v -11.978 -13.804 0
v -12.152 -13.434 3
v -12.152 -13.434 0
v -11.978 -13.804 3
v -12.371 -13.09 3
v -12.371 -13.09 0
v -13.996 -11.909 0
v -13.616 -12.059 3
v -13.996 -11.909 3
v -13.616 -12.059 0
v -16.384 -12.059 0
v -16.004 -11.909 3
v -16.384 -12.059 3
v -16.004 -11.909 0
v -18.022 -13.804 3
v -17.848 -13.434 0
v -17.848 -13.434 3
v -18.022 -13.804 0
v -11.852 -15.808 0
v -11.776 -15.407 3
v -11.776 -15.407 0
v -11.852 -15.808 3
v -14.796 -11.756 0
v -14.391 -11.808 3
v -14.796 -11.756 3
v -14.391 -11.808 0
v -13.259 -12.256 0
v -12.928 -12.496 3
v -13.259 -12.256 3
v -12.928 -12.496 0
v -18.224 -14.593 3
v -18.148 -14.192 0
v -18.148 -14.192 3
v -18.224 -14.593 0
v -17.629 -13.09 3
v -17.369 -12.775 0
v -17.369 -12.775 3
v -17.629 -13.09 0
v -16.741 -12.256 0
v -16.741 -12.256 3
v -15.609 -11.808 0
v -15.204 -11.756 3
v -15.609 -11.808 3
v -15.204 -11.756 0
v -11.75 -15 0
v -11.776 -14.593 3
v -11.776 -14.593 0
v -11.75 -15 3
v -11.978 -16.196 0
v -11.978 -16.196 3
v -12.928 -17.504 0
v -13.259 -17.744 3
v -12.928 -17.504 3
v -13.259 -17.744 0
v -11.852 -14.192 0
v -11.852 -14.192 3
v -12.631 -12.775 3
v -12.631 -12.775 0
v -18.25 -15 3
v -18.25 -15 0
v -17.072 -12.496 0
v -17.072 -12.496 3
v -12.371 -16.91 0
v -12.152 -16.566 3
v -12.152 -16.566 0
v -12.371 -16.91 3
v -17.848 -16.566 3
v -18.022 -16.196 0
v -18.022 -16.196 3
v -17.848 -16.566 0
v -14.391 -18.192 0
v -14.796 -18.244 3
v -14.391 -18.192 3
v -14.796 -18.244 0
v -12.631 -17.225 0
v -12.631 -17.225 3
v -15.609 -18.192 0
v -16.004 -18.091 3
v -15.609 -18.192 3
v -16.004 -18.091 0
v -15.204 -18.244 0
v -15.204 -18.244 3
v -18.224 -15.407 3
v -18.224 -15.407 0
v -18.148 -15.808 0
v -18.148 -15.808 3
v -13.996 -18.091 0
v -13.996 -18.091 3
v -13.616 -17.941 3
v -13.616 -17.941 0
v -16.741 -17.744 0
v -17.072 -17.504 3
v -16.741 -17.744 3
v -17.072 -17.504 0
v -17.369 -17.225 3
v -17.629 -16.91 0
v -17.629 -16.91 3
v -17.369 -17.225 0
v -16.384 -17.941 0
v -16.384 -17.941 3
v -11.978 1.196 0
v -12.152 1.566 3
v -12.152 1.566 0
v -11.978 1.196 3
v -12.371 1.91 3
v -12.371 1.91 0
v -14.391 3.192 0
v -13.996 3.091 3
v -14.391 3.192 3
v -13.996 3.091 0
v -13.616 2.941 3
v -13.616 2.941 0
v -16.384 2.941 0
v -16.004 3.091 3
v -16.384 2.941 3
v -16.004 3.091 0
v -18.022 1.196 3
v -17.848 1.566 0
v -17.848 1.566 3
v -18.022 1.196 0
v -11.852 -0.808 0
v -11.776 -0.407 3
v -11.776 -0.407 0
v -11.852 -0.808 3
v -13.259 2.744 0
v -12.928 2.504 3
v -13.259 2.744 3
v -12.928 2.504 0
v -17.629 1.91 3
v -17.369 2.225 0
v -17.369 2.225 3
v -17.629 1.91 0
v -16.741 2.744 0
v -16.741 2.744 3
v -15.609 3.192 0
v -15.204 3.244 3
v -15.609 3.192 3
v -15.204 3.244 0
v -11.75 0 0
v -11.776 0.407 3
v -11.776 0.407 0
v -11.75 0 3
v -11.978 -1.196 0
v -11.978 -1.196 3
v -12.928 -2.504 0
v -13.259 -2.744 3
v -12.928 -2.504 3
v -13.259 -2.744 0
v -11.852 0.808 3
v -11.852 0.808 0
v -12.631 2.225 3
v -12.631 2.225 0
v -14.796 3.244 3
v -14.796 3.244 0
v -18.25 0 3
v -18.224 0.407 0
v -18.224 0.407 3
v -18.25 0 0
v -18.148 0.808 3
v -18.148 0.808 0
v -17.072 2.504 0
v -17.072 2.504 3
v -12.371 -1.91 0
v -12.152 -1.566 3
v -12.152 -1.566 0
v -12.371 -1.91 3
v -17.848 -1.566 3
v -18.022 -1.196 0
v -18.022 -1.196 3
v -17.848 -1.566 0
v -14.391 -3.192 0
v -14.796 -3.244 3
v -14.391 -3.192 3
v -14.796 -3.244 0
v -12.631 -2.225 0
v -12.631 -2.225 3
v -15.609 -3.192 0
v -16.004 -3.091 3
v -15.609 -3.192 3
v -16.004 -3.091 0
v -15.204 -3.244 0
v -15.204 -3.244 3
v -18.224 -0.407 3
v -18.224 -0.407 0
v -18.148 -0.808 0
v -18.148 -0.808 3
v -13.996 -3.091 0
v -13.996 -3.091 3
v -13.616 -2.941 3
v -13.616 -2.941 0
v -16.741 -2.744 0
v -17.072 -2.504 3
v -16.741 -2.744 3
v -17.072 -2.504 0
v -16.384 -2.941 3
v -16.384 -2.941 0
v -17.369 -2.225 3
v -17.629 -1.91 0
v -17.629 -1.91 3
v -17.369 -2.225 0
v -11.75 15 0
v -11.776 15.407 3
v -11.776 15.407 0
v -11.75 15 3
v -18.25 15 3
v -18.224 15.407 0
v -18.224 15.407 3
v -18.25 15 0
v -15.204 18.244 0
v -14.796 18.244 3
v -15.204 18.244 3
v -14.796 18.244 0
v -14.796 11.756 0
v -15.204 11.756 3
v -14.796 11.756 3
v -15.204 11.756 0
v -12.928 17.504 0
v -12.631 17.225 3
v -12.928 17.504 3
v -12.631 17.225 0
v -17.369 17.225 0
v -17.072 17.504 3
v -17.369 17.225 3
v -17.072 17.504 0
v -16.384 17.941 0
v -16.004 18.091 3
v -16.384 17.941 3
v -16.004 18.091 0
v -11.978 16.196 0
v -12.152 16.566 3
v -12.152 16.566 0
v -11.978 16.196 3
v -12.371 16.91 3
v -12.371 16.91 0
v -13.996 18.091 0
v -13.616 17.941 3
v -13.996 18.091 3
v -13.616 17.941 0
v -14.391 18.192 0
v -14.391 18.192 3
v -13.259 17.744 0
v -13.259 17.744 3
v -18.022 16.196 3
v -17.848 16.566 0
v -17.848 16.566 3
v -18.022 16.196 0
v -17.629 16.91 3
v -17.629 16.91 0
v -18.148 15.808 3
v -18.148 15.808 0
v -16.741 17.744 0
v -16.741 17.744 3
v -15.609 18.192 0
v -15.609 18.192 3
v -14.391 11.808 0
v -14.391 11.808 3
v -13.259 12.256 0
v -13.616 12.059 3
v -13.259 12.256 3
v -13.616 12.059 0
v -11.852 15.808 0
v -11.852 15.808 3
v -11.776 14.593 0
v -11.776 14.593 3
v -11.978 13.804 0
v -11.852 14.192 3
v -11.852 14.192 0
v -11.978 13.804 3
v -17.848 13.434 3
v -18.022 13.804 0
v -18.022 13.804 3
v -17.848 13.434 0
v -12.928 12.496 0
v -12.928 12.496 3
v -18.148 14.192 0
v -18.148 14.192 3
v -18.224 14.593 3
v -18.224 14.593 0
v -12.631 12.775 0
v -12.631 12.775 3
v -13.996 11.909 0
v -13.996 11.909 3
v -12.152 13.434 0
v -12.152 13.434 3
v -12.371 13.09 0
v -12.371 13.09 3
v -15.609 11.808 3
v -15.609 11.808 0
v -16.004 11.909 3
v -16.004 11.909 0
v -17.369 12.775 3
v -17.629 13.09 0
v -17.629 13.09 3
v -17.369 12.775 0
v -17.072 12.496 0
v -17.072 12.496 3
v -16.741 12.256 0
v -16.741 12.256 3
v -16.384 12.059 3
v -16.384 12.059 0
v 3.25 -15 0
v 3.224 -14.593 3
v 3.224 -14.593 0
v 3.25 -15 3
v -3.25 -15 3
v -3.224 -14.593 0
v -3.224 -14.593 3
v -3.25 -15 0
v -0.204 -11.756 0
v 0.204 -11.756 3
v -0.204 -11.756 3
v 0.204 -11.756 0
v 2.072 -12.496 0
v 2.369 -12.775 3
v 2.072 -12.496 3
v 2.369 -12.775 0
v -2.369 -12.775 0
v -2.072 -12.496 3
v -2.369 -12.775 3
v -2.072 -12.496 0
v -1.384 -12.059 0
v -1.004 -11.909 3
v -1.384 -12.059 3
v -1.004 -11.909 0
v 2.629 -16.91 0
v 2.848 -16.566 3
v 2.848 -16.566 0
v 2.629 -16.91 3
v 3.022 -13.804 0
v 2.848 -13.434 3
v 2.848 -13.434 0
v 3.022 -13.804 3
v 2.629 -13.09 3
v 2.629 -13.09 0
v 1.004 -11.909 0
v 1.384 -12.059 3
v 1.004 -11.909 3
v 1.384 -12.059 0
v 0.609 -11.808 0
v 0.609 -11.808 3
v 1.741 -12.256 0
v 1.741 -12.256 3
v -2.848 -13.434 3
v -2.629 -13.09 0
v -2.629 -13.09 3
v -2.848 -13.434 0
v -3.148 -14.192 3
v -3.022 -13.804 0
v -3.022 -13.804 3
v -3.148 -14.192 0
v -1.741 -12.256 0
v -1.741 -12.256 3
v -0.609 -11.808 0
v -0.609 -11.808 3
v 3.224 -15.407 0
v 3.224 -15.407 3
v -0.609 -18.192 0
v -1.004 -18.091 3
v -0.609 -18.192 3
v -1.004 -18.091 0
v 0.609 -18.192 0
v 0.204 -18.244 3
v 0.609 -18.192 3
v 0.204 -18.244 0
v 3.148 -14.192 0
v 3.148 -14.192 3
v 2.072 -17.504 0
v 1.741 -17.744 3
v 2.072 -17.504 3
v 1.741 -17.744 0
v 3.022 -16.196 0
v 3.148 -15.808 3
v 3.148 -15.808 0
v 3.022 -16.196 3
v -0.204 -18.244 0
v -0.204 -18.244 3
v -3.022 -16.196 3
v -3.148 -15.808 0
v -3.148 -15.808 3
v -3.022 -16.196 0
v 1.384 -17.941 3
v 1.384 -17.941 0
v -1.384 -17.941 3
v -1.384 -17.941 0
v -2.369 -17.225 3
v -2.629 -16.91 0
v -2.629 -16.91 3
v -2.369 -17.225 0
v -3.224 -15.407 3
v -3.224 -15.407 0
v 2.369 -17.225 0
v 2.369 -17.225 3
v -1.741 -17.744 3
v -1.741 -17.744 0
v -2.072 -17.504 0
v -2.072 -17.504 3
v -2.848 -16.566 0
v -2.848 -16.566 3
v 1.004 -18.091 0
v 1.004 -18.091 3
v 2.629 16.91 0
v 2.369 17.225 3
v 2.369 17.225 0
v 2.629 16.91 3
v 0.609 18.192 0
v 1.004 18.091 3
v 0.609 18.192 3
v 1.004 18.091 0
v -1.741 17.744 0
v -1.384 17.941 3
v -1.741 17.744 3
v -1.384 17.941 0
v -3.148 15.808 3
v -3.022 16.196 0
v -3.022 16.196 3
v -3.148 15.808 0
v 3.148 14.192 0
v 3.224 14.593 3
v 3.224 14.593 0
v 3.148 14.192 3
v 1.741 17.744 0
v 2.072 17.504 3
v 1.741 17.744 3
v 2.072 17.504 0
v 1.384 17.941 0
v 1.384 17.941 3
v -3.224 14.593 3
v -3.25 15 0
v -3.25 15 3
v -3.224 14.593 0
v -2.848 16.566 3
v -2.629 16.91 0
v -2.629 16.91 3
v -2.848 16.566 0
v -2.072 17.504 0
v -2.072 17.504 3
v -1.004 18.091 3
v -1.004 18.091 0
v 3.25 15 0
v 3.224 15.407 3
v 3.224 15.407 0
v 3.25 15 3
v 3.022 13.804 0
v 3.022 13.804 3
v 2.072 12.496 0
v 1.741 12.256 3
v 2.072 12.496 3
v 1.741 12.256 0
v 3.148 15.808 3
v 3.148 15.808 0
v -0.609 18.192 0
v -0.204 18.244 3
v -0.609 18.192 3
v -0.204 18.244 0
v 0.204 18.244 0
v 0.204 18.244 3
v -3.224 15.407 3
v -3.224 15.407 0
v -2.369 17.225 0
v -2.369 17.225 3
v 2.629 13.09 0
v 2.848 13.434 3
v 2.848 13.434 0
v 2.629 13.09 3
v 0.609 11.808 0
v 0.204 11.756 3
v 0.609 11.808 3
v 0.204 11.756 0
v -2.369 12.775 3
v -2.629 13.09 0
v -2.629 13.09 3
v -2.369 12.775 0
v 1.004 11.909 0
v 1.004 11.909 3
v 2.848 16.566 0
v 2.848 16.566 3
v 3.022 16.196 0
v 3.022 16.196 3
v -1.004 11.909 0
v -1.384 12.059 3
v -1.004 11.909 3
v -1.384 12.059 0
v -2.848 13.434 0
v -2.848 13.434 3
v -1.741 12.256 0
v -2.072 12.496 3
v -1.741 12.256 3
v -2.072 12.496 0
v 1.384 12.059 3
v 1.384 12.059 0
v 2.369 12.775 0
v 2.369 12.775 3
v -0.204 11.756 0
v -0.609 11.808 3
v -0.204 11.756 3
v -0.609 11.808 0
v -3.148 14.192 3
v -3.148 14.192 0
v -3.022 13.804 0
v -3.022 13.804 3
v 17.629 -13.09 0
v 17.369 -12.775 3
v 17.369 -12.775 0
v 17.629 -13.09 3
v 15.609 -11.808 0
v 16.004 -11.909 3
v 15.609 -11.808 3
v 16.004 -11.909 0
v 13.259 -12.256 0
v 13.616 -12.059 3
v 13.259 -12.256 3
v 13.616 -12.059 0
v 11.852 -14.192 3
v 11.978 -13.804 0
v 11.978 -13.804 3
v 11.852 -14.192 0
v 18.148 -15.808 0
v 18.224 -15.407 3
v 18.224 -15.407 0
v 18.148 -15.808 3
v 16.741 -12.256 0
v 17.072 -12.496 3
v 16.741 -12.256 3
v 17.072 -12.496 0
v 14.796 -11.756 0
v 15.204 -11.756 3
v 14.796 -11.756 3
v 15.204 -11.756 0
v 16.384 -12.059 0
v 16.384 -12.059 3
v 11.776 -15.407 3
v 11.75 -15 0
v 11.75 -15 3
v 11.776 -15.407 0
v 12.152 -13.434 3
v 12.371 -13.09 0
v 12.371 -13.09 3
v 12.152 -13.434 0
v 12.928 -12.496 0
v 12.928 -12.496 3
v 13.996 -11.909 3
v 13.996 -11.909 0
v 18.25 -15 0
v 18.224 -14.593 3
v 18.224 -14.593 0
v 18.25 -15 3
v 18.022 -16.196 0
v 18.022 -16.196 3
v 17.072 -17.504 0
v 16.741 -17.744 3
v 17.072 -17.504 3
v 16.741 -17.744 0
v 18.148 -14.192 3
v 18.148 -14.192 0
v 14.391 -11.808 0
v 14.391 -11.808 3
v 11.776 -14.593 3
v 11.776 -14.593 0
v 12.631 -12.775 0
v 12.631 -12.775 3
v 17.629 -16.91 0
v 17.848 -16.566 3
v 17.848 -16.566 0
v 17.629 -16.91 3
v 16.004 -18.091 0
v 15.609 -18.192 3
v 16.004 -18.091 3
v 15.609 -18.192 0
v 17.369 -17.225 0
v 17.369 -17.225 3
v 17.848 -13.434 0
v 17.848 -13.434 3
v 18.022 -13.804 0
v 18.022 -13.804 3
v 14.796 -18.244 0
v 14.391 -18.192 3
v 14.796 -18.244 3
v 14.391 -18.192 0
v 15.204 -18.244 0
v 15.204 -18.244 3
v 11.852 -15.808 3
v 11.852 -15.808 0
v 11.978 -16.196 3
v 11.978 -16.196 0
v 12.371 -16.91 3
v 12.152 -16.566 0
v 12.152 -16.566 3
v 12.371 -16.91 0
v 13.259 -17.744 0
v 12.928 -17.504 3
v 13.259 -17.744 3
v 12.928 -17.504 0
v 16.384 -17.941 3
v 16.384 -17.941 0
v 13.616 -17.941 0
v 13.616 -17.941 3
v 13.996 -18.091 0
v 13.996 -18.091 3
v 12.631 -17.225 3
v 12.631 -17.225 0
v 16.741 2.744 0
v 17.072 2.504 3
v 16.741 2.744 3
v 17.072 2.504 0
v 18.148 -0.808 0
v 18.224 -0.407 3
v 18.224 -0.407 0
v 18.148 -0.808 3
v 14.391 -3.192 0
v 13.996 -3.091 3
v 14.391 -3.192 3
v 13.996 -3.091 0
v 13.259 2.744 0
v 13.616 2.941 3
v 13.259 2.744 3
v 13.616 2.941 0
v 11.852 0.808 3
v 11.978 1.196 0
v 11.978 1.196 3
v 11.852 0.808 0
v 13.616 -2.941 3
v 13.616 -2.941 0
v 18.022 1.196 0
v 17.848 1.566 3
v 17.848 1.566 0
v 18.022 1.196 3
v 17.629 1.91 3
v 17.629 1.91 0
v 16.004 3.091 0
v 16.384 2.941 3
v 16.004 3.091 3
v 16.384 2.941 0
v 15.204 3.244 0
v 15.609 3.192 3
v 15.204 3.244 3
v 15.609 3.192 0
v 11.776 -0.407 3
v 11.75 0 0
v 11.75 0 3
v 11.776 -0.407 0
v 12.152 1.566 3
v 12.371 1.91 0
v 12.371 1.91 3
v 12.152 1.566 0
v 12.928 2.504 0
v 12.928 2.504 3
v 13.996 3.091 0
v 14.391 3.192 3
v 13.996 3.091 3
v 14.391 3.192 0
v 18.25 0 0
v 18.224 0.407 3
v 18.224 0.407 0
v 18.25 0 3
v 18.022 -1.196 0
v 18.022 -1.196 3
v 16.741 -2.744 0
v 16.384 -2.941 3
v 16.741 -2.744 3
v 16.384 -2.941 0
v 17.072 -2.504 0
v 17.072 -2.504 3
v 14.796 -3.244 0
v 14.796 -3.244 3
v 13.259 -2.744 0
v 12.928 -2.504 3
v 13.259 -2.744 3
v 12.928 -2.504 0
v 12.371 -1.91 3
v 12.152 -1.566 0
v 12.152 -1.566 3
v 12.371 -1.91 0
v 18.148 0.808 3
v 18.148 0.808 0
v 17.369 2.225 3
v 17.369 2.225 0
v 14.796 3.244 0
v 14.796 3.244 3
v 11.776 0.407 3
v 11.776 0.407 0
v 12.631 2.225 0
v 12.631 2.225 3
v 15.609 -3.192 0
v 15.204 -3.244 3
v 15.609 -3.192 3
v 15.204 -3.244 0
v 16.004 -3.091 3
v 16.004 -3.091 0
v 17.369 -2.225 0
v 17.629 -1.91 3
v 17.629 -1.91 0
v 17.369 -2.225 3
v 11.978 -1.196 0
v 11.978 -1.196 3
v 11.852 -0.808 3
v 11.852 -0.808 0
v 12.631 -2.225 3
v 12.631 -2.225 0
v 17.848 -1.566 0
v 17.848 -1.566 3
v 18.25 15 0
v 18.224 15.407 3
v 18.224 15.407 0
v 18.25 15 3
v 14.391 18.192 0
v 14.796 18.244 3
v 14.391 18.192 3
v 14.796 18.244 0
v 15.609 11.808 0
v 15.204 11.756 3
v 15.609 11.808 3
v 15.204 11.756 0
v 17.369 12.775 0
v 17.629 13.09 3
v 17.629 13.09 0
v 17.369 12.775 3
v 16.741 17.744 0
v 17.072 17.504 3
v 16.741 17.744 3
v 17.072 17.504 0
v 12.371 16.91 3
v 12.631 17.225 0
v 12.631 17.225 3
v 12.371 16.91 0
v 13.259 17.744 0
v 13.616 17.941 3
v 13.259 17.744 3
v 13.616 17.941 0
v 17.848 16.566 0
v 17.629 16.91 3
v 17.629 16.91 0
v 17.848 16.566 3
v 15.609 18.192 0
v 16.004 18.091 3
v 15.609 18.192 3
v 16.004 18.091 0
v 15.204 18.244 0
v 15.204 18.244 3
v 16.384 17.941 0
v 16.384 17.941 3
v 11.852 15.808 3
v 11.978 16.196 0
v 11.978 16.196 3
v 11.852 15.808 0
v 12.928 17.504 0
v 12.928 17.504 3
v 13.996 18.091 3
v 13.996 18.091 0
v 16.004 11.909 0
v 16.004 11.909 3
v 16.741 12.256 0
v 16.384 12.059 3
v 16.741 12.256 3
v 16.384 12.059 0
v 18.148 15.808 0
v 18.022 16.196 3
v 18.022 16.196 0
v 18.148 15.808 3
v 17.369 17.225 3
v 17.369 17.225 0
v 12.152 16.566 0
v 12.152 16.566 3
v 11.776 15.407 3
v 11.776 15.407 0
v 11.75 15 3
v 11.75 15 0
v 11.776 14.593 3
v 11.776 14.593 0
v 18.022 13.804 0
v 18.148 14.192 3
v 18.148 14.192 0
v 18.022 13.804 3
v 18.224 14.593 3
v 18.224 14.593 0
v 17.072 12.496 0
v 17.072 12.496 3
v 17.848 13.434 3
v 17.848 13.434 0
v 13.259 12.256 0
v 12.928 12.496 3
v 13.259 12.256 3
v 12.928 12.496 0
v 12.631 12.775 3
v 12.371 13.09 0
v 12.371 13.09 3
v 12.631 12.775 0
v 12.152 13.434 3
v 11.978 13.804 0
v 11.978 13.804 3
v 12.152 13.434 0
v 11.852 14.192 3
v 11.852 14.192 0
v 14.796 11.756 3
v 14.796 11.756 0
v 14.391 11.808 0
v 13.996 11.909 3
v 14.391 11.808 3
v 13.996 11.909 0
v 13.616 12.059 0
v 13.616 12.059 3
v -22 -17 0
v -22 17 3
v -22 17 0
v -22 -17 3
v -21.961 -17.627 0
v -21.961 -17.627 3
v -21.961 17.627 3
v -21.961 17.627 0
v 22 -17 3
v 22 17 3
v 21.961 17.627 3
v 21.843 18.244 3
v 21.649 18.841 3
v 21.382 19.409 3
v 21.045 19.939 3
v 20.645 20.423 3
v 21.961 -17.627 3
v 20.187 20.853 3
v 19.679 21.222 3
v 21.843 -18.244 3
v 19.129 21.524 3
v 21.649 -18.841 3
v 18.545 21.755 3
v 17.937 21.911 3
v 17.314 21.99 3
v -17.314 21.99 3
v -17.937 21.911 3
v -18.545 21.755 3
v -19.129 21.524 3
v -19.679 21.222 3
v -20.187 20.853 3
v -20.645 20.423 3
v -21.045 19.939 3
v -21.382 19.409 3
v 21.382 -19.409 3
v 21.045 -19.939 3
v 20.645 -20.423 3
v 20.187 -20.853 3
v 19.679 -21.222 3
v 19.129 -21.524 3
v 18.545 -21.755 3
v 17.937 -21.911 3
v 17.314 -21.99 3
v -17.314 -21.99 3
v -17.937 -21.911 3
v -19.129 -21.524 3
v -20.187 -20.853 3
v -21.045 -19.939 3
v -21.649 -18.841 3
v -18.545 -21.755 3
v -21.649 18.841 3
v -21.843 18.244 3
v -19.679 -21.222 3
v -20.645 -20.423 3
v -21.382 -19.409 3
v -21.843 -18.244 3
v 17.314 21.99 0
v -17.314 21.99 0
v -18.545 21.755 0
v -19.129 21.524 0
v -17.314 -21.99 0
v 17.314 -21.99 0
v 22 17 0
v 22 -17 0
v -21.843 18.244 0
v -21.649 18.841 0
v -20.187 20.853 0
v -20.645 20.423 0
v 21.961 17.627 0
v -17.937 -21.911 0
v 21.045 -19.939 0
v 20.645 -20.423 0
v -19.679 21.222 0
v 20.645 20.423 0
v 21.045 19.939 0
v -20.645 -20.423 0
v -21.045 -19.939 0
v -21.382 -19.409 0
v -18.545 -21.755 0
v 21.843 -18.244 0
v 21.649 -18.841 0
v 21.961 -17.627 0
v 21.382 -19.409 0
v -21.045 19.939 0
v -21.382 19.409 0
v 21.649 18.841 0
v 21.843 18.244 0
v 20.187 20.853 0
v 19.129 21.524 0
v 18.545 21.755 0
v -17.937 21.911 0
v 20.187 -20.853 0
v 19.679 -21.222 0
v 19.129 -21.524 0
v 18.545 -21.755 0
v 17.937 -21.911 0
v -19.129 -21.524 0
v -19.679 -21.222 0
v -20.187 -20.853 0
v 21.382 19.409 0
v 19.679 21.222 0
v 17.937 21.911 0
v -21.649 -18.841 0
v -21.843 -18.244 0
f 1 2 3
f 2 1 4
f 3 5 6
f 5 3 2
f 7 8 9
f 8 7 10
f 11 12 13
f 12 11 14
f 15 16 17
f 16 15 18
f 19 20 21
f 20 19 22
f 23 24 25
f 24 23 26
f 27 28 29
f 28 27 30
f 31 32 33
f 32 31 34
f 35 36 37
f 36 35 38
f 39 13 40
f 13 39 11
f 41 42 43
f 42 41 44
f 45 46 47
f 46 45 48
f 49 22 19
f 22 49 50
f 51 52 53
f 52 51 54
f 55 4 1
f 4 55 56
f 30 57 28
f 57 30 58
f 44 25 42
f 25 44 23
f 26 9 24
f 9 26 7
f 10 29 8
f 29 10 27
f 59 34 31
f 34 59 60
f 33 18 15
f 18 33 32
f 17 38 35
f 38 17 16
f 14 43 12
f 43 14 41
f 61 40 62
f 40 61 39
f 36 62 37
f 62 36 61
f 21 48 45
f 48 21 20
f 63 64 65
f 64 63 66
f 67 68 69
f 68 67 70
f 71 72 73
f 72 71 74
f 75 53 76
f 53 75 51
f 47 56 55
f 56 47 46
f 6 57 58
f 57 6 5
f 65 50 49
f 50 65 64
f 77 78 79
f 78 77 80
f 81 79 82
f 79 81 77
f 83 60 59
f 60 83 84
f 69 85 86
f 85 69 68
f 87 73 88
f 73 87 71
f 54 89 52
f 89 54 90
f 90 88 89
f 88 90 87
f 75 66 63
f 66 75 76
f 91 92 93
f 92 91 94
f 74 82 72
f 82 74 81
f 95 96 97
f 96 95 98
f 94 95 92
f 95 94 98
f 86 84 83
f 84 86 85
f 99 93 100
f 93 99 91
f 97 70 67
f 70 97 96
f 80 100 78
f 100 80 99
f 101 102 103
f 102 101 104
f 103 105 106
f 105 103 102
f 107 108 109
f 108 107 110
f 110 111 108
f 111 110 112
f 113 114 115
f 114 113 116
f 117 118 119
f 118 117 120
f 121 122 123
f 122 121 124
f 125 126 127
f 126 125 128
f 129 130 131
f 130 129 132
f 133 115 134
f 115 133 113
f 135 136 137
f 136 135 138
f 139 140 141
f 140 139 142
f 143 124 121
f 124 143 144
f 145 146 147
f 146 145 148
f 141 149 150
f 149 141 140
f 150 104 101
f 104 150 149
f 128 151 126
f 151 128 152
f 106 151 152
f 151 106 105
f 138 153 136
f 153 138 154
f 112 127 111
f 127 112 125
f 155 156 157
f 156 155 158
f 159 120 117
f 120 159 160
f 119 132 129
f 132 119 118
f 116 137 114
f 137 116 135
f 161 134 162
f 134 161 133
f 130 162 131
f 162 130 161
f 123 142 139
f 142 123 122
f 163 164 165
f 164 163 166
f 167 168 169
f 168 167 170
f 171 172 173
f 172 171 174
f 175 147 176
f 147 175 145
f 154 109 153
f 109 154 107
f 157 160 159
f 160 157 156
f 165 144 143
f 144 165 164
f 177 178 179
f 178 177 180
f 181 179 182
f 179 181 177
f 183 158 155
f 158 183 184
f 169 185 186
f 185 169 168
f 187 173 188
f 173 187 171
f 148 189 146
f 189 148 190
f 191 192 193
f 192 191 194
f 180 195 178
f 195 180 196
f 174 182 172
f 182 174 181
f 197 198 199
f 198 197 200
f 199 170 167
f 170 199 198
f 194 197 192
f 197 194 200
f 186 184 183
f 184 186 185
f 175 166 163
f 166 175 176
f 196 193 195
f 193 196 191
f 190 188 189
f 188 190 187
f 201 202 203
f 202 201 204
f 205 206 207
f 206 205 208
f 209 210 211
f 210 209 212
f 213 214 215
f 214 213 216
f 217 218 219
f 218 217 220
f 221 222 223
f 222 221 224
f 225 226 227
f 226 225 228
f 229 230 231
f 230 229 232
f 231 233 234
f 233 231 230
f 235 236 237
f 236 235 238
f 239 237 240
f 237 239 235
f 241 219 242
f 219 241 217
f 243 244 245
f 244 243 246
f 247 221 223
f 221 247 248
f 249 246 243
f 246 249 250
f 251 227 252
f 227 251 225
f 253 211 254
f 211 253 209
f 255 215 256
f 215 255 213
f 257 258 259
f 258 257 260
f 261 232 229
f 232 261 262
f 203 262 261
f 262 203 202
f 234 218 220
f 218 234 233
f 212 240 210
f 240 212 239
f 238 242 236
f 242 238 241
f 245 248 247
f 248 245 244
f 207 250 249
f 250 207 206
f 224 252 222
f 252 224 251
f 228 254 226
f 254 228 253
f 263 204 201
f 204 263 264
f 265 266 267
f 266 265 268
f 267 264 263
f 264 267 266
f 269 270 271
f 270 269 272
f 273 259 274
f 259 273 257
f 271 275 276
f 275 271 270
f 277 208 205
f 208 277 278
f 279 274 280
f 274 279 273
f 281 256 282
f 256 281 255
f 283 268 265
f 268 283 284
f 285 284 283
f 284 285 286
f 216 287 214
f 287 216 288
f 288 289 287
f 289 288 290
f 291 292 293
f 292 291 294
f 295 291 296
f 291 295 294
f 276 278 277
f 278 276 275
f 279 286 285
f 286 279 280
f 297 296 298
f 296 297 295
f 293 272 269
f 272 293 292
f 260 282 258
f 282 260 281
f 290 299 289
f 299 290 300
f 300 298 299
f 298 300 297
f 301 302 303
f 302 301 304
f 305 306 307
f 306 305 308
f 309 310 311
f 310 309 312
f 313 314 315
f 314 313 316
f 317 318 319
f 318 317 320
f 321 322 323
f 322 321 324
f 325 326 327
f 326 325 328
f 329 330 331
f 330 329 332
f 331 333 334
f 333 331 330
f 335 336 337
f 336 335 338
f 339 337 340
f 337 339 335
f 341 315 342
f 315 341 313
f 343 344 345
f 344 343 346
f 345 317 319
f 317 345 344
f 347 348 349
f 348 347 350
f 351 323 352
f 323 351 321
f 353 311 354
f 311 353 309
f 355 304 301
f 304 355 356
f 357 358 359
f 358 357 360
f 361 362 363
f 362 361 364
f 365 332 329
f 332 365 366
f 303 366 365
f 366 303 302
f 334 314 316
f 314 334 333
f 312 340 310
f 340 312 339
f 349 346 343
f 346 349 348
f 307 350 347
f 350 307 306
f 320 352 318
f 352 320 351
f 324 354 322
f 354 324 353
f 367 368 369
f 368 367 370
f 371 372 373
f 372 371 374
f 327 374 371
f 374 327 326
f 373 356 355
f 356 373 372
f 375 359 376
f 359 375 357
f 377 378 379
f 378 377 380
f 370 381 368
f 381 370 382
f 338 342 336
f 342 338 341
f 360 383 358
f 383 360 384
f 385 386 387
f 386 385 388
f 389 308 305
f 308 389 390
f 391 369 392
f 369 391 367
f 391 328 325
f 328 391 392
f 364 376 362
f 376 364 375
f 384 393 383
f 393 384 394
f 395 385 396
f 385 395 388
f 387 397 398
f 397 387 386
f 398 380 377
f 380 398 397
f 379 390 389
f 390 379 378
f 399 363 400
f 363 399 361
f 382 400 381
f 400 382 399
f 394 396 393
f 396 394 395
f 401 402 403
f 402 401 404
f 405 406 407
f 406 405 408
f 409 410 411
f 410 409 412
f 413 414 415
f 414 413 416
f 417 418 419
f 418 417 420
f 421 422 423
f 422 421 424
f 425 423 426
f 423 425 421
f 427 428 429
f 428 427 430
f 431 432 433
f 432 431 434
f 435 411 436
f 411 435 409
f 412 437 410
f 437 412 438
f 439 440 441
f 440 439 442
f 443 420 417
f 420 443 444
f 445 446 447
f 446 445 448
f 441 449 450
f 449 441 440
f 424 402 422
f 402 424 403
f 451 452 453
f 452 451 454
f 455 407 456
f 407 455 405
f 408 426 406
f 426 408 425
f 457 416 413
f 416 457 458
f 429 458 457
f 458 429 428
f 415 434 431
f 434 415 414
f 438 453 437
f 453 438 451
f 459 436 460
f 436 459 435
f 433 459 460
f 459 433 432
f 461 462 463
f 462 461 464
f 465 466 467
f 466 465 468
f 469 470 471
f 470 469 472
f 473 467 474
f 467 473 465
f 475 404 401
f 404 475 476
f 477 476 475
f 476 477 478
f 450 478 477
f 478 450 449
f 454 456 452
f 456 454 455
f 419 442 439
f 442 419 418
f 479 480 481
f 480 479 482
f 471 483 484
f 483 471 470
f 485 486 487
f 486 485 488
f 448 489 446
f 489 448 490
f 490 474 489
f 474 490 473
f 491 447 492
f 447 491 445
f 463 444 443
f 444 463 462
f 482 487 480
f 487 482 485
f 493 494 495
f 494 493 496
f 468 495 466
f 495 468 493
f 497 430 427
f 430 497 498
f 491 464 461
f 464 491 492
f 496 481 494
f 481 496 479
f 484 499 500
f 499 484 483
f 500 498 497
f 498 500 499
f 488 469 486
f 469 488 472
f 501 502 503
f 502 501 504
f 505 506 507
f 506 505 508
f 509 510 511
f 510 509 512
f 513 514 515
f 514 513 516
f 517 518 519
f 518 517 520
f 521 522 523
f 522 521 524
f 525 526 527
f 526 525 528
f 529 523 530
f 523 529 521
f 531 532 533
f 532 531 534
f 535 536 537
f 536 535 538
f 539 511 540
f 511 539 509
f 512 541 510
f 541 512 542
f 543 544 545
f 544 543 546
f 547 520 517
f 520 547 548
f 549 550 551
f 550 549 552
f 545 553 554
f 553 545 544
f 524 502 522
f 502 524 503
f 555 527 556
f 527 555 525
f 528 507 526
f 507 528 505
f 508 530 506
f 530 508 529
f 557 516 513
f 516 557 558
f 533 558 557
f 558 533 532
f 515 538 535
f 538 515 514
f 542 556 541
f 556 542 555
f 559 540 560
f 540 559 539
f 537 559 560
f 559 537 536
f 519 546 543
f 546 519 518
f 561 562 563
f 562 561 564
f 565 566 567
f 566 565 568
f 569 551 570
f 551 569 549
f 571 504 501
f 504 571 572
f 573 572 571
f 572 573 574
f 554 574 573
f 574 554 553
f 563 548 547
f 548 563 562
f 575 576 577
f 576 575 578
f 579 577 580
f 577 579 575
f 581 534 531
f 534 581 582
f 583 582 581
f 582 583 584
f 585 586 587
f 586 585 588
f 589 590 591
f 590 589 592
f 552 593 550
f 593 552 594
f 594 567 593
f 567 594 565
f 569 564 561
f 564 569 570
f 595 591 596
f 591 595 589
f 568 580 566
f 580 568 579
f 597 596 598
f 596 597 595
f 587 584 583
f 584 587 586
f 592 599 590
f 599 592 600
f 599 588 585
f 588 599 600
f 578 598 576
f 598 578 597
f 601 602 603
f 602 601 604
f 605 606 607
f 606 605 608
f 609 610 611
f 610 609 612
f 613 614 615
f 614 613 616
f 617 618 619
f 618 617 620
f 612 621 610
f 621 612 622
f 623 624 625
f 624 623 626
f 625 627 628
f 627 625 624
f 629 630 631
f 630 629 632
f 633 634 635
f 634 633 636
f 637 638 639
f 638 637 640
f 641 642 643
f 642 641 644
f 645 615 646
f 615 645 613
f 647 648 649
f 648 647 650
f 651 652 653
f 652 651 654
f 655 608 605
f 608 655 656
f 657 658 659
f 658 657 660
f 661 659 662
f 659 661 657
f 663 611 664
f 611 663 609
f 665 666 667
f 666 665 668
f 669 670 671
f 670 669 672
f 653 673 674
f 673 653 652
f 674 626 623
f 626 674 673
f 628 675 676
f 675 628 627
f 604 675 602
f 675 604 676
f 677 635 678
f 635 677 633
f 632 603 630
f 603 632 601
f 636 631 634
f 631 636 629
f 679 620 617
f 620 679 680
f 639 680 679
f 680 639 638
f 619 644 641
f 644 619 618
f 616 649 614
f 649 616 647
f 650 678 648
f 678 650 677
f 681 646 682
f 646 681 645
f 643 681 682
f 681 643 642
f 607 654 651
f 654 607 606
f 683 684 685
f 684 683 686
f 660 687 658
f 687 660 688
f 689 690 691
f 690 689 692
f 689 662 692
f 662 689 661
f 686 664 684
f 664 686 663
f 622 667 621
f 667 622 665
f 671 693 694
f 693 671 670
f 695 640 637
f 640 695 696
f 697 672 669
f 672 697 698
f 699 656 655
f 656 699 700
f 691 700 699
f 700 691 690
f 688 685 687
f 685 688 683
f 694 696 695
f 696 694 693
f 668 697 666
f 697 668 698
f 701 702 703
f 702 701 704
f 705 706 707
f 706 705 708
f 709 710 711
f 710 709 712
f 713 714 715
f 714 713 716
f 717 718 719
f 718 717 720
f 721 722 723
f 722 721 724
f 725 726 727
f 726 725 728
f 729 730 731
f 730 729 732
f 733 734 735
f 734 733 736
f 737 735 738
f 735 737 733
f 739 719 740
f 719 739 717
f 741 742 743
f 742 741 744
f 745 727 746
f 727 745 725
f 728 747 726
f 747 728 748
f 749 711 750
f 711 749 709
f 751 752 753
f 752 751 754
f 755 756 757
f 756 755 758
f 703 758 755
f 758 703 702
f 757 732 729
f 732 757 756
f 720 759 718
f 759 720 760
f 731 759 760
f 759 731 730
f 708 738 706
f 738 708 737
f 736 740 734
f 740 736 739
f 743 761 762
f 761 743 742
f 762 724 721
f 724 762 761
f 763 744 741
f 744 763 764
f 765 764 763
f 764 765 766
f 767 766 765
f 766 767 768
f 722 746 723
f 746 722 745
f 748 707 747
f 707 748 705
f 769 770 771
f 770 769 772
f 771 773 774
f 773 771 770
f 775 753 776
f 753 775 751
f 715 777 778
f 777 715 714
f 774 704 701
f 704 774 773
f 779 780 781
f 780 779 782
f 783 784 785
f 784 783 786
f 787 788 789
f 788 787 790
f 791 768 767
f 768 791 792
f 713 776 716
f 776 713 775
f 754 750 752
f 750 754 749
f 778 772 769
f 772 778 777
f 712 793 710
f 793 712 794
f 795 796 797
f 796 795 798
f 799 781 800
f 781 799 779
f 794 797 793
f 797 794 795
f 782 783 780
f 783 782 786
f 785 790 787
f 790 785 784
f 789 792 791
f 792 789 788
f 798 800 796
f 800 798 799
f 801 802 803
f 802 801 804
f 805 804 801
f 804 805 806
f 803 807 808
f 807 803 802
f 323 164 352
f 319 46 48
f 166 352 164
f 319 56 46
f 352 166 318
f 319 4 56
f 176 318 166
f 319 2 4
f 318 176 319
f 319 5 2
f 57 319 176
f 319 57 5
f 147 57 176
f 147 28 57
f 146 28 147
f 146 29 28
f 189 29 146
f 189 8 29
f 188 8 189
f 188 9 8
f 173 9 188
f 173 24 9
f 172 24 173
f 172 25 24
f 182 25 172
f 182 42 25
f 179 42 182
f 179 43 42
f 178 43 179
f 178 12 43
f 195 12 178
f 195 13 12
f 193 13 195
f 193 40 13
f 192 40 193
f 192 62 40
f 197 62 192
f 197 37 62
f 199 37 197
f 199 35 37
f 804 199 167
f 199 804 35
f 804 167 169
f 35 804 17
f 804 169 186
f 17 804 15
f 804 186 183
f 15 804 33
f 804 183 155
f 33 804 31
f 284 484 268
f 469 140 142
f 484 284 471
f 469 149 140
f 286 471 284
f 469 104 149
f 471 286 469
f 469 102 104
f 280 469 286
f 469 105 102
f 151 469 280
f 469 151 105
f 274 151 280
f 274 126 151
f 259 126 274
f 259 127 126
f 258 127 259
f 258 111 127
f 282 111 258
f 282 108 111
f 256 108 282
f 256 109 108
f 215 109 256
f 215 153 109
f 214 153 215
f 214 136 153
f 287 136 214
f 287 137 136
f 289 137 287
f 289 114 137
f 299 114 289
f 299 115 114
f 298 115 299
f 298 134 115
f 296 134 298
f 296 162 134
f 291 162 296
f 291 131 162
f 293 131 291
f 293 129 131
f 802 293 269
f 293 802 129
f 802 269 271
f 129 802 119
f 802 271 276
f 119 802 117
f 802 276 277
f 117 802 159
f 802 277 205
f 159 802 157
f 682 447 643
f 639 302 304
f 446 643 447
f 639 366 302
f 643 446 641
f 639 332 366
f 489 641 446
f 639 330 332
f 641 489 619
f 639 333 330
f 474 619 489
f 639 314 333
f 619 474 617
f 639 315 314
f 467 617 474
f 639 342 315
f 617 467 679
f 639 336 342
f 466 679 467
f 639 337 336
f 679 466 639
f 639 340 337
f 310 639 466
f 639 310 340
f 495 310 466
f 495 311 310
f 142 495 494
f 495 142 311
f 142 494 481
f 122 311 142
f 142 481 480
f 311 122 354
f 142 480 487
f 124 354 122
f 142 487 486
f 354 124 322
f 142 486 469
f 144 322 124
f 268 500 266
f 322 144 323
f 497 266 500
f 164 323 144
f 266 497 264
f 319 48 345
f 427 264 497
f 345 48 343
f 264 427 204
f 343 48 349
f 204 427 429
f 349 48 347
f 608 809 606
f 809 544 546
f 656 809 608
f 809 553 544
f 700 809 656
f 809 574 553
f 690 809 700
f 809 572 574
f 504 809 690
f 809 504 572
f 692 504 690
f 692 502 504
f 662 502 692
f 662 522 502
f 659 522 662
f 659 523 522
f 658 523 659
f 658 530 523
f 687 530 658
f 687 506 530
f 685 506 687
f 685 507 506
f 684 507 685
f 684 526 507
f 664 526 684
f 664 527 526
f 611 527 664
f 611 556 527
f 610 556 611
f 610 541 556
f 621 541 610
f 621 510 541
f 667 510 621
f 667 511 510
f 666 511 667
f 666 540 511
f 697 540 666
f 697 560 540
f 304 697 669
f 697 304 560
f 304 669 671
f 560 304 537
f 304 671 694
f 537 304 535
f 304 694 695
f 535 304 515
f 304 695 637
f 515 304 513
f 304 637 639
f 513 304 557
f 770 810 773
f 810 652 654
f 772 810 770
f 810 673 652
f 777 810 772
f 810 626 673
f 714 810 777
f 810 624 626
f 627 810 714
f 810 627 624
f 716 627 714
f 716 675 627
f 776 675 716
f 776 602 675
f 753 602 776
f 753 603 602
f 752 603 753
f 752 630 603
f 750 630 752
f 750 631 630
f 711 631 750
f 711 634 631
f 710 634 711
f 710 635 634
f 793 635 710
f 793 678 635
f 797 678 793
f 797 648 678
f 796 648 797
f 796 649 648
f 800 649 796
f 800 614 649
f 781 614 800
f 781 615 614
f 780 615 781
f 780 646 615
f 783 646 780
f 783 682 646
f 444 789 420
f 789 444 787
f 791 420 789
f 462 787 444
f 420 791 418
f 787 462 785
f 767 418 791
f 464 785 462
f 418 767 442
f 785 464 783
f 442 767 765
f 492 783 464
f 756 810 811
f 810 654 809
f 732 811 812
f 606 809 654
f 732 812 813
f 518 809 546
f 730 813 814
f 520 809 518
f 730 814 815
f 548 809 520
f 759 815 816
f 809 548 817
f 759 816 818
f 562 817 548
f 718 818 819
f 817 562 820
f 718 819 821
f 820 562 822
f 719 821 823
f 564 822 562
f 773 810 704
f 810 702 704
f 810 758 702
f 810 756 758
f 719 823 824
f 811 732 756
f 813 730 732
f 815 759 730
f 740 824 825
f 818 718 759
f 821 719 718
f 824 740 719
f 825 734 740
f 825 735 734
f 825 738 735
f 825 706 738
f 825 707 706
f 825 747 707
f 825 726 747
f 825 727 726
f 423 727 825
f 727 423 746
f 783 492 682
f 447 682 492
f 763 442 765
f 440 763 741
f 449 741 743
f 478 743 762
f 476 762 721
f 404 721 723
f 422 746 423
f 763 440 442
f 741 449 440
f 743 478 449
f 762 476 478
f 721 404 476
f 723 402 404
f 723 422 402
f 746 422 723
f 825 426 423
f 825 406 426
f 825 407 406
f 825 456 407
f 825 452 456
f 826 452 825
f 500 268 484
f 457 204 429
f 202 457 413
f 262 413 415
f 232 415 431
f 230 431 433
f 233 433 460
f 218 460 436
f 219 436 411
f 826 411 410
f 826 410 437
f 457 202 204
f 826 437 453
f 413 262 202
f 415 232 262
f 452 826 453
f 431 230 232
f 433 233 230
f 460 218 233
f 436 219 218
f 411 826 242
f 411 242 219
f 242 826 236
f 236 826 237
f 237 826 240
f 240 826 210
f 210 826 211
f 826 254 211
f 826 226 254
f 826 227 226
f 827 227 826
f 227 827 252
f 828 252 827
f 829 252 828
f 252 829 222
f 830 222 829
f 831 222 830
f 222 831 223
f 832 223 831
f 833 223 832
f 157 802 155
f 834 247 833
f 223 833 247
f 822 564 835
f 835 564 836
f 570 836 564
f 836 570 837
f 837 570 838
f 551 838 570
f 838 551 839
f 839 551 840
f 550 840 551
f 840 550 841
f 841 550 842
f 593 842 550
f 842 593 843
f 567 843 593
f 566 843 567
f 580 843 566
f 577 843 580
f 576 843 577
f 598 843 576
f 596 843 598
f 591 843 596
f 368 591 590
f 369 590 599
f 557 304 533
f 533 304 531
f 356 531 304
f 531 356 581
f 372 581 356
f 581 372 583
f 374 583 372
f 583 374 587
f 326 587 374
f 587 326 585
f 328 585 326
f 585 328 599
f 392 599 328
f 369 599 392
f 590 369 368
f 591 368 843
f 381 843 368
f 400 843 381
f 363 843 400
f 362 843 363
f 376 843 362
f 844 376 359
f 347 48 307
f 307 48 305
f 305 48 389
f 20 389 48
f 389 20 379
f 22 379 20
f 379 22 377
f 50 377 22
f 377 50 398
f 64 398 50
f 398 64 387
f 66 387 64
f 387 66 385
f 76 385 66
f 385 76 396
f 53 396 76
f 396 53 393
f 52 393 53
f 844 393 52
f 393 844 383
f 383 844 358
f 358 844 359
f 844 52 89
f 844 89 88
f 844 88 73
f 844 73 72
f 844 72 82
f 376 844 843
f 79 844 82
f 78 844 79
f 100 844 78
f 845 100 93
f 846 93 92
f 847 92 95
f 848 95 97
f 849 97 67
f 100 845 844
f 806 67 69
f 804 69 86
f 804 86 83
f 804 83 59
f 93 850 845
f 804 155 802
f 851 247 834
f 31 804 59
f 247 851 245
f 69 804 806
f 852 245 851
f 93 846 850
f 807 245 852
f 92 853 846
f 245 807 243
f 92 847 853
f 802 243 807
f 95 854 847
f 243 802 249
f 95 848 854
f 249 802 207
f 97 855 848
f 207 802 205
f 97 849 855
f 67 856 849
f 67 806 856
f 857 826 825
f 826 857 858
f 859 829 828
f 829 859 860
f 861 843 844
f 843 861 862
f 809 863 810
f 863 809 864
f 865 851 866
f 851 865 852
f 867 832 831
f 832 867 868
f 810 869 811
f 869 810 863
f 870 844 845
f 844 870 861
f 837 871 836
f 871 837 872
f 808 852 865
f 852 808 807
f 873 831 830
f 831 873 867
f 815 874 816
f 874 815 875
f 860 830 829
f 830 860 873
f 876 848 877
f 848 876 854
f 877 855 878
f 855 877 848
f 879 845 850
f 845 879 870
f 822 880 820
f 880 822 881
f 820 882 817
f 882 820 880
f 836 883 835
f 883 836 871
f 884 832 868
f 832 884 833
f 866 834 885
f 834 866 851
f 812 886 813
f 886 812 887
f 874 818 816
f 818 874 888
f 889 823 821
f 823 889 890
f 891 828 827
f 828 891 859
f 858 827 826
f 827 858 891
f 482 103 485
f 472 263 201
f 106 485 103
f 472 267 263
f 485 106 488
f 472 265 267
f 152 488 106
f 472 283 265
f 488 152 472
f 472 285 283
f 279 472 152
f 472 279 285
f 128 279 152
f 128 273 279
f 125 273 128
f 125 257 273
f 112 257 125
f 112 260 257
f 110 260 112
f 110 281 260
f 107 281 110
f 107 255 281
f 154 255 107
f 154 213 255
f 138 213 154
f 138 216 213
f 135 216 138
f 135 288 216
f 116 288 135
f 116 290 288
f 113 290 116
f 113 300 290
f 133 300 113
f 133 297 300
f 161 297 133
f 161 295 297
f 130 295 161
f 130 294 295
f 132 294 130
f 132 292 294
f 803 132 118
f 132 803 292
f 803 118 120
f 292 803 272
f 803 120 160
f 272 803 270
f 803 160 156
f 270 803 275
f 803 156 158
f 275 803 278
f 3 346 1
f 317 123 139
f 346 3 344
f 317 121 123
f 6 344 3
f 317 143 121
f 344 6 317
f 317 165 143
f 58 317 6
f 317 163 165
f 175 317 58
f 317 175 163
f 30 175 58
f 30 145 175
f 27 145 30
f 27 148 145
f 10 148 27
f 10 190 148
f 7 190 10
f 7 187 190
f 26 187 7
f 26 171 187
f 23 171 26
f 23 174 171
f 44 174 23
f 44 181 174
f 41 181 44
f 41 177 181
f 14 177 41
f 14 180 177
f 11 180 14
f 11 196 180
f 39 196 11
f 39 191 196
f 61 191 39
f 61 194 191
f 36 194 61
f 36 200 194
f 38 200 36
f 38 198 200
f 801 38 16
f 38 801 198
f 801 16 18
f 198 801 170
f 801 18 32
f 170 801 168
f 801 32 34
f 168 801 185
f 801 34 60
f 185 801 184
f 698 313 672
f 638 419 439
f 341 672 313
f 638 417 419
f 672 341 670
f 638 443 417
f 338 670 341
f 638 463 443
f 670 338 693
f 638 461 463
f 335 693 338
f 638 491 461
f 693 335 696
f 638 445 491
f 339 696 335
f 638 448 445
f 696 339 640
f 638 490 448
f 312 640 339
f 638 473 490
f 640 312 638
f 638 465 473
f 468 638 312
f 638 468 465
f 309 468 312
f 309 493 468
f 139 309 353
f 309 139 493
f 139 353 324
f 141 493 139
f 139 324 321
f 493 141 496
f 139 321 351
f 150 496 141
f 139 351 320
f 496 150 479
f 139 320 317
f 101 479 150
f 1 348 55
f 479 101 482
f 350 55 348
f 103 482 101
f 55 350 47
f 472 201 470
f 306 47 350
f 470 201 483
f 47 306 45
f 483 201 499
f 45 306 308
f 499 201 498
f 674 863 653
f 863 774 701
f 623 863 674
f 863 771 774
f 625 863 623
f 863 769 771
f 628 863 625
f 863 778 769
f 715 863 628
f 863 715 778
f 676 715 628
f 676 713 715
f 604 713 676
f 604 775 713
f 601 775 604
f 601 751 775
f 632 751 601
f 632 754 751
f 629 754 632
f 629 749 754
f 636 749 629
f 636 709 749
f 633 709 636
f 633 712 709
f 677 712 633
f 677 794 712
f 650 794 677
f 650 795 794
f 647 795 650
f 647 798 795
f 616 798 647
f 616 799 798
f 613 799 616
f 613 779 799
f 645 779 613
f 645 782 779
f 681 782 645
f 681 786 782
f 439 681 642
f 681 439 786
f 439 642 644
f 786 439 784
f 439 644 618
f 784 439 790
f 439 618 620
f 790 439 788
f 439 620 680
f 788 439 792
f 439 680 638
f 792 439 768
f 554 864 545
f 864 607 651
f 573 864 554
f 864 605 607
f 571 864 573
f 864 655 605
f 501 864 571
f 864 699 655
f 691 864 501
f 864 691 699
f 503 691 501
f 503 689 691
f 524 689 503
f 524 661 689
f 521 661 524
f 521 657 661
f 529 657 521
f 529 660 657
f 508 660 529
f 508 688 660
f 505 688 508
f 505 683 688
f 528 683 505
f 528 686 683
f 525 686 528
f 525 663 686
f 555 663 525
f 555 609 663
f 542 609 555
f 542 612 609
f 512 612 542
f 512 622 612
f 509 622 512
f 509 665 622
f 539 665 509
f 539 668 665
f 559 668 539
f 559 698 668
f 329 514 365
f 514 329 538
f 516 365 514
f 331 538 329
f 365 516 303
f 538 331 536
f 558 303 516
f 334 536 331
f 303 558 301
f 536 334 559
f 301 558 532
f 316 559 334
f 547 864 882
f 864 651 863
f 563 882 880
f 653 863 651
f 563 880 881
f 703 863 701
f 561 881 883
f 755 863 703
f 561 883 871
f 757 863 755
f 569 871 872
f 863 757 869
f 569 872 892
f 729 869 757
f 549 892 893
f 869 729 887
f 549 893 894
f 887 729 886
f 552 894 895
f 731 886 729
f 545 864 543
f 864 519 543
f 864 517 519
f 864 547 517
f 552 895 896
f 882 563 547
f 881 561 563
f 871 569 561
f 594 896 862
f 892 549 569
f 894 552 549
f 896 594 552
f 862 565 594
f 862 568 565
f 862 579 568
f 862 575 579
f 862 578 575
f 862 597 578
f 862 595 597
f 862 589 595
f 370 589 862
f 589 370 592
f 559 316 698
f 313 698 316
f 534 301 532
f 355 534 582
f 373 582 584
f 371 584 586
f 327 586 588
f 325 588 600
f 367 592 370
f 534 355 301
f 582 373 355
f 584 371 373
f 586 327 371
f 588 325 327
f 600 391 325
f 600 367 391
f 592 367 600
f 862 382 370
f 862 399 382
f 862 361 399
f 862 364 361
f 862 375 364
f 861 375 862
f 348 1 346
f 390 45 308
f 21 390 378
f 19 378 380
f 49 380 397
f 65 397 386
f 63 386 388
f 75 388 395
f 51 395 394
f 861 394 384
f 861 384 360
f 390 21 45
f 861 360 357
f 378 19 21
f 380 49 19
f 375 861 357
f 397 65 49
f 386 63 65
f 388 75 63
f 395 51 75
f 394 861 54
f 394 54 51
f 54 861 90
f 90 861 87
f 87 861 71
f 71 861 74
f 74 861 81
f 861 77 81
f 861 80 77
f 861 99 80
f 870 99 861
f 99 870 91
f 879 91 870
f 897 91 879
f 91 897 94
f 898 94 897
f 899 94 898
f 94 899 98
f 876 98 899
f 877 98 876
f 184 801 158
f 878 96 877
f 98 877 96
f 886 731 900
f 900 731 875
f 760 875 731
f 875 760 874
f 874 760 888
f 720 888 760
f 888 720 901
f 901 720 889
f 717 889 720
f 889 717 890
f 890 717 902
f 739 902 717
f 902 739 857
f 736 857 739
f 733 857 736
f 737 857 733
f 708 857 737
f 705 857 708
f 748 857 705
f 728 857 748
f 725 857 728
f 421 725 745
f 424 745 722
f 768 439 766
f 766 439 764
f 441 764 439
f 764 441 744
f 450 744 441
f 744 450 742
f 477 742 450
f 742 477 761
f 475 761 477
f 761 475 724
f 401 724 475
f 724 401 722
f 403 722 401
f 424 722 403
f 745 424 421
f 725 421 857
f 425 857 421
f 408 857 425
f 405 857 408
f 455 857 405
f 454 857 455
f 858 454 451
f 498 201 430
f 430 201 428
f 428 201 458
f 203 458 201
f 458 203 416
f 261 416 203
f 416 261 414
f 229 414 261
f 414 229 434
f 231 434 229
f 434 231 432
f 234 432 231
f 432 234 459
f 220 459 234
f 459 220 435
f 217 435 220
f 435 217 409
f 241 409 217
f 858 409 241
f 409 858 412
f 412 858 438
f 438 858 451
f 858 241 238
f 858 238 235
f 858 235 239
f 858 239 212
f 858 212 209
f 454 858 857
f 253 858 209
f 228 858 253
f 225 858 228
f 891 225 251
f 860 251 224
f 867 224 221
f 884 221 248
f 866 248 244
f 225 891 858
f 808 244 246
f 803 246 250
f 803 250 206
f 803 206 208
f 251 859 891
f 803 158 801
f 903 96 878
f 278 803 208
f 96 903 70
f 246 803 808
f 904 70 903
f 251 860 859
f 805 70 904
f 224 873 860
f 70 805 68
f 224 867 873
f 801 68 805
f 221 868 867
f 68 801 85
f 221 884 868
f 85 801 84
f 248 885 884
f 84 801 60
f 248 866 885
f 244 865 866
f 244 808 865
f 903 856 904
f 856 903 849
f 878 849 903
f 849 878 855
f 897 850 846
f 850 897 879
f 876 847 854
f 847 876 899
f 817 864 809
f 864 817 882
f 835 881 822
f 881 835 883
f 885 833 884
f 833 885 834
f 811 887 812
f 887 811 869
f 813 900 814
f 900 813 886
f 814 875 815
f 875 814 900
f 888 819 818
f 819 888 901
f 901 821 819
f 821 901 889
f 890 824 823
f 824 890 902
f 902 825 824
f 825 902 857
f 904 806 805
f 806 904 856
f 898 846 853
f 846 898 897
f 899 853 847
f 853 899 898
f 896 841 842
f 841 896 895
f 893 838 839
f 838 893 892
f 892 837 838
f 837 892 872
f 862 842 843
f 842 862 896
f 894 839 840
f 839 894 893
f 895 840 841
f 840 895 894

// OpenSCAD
$fn = 50;


difference() {
	union() {
		hull() {
			translate(v = [-17.0000000000, 17.0000000000, 0]) {
				cylinder(h = 3, r = 5);
			}
			translate(v = [17.0000000000, 17.0000000000, 0]) {
				cylinder(h = 3, r = 5);
			}
			translate(v = [-17.0000000000, -17.0000000000, 0]) {
				cylinder(h = 3, r = 5);
			}
			translate(v = [17.0000000000, -17.0000000000, 0]) {
				cylinder(h = 3, r = 5);
			}
		}
	}
	union() {
		translate(v = [-15.0000000000, -15.0000000000, -100.0000000000]) {
			cylinder(h = 200, r = 3.2500000000);
		}
		translate(v = [-15.0000000000, 0.0000000000, -100.0000000000]) {
			cylinder(h = 200, r = 3.2500000000);
		}
		translate(v = [-15.0000000000, 15.0000000000, -100.0000000000]) {
			cylinder(h = 200, r = 3.2500000000);
		}
		translate(v = [0.0000000000, -15.0000000000, -100.0000000000]) {
			cylinder(h = 200, r = 3.2500000000);
		}
		translate(v = [0.0000000000, 15.0000000000, -100.0000000000]) {
			cylinder(h = 200, r = 3.2500000000);
		}
		translate(v = [15.0000000000, -15.0000000000, -100.0000000000]) {
			cylinder(h = 200, r = 3.2500000000);
		}
		translate(v = [15.0000000000, 0.0000000000, -100.0000000000]) {
			cylinder(h = 200, r = 3.2500000000);
		}
		translate(v = [15.0000000000, 15.0000000000, -100.0000000000]) {
			cylinder(h = 200, r = 3.2500000000);
		}
	}
}
